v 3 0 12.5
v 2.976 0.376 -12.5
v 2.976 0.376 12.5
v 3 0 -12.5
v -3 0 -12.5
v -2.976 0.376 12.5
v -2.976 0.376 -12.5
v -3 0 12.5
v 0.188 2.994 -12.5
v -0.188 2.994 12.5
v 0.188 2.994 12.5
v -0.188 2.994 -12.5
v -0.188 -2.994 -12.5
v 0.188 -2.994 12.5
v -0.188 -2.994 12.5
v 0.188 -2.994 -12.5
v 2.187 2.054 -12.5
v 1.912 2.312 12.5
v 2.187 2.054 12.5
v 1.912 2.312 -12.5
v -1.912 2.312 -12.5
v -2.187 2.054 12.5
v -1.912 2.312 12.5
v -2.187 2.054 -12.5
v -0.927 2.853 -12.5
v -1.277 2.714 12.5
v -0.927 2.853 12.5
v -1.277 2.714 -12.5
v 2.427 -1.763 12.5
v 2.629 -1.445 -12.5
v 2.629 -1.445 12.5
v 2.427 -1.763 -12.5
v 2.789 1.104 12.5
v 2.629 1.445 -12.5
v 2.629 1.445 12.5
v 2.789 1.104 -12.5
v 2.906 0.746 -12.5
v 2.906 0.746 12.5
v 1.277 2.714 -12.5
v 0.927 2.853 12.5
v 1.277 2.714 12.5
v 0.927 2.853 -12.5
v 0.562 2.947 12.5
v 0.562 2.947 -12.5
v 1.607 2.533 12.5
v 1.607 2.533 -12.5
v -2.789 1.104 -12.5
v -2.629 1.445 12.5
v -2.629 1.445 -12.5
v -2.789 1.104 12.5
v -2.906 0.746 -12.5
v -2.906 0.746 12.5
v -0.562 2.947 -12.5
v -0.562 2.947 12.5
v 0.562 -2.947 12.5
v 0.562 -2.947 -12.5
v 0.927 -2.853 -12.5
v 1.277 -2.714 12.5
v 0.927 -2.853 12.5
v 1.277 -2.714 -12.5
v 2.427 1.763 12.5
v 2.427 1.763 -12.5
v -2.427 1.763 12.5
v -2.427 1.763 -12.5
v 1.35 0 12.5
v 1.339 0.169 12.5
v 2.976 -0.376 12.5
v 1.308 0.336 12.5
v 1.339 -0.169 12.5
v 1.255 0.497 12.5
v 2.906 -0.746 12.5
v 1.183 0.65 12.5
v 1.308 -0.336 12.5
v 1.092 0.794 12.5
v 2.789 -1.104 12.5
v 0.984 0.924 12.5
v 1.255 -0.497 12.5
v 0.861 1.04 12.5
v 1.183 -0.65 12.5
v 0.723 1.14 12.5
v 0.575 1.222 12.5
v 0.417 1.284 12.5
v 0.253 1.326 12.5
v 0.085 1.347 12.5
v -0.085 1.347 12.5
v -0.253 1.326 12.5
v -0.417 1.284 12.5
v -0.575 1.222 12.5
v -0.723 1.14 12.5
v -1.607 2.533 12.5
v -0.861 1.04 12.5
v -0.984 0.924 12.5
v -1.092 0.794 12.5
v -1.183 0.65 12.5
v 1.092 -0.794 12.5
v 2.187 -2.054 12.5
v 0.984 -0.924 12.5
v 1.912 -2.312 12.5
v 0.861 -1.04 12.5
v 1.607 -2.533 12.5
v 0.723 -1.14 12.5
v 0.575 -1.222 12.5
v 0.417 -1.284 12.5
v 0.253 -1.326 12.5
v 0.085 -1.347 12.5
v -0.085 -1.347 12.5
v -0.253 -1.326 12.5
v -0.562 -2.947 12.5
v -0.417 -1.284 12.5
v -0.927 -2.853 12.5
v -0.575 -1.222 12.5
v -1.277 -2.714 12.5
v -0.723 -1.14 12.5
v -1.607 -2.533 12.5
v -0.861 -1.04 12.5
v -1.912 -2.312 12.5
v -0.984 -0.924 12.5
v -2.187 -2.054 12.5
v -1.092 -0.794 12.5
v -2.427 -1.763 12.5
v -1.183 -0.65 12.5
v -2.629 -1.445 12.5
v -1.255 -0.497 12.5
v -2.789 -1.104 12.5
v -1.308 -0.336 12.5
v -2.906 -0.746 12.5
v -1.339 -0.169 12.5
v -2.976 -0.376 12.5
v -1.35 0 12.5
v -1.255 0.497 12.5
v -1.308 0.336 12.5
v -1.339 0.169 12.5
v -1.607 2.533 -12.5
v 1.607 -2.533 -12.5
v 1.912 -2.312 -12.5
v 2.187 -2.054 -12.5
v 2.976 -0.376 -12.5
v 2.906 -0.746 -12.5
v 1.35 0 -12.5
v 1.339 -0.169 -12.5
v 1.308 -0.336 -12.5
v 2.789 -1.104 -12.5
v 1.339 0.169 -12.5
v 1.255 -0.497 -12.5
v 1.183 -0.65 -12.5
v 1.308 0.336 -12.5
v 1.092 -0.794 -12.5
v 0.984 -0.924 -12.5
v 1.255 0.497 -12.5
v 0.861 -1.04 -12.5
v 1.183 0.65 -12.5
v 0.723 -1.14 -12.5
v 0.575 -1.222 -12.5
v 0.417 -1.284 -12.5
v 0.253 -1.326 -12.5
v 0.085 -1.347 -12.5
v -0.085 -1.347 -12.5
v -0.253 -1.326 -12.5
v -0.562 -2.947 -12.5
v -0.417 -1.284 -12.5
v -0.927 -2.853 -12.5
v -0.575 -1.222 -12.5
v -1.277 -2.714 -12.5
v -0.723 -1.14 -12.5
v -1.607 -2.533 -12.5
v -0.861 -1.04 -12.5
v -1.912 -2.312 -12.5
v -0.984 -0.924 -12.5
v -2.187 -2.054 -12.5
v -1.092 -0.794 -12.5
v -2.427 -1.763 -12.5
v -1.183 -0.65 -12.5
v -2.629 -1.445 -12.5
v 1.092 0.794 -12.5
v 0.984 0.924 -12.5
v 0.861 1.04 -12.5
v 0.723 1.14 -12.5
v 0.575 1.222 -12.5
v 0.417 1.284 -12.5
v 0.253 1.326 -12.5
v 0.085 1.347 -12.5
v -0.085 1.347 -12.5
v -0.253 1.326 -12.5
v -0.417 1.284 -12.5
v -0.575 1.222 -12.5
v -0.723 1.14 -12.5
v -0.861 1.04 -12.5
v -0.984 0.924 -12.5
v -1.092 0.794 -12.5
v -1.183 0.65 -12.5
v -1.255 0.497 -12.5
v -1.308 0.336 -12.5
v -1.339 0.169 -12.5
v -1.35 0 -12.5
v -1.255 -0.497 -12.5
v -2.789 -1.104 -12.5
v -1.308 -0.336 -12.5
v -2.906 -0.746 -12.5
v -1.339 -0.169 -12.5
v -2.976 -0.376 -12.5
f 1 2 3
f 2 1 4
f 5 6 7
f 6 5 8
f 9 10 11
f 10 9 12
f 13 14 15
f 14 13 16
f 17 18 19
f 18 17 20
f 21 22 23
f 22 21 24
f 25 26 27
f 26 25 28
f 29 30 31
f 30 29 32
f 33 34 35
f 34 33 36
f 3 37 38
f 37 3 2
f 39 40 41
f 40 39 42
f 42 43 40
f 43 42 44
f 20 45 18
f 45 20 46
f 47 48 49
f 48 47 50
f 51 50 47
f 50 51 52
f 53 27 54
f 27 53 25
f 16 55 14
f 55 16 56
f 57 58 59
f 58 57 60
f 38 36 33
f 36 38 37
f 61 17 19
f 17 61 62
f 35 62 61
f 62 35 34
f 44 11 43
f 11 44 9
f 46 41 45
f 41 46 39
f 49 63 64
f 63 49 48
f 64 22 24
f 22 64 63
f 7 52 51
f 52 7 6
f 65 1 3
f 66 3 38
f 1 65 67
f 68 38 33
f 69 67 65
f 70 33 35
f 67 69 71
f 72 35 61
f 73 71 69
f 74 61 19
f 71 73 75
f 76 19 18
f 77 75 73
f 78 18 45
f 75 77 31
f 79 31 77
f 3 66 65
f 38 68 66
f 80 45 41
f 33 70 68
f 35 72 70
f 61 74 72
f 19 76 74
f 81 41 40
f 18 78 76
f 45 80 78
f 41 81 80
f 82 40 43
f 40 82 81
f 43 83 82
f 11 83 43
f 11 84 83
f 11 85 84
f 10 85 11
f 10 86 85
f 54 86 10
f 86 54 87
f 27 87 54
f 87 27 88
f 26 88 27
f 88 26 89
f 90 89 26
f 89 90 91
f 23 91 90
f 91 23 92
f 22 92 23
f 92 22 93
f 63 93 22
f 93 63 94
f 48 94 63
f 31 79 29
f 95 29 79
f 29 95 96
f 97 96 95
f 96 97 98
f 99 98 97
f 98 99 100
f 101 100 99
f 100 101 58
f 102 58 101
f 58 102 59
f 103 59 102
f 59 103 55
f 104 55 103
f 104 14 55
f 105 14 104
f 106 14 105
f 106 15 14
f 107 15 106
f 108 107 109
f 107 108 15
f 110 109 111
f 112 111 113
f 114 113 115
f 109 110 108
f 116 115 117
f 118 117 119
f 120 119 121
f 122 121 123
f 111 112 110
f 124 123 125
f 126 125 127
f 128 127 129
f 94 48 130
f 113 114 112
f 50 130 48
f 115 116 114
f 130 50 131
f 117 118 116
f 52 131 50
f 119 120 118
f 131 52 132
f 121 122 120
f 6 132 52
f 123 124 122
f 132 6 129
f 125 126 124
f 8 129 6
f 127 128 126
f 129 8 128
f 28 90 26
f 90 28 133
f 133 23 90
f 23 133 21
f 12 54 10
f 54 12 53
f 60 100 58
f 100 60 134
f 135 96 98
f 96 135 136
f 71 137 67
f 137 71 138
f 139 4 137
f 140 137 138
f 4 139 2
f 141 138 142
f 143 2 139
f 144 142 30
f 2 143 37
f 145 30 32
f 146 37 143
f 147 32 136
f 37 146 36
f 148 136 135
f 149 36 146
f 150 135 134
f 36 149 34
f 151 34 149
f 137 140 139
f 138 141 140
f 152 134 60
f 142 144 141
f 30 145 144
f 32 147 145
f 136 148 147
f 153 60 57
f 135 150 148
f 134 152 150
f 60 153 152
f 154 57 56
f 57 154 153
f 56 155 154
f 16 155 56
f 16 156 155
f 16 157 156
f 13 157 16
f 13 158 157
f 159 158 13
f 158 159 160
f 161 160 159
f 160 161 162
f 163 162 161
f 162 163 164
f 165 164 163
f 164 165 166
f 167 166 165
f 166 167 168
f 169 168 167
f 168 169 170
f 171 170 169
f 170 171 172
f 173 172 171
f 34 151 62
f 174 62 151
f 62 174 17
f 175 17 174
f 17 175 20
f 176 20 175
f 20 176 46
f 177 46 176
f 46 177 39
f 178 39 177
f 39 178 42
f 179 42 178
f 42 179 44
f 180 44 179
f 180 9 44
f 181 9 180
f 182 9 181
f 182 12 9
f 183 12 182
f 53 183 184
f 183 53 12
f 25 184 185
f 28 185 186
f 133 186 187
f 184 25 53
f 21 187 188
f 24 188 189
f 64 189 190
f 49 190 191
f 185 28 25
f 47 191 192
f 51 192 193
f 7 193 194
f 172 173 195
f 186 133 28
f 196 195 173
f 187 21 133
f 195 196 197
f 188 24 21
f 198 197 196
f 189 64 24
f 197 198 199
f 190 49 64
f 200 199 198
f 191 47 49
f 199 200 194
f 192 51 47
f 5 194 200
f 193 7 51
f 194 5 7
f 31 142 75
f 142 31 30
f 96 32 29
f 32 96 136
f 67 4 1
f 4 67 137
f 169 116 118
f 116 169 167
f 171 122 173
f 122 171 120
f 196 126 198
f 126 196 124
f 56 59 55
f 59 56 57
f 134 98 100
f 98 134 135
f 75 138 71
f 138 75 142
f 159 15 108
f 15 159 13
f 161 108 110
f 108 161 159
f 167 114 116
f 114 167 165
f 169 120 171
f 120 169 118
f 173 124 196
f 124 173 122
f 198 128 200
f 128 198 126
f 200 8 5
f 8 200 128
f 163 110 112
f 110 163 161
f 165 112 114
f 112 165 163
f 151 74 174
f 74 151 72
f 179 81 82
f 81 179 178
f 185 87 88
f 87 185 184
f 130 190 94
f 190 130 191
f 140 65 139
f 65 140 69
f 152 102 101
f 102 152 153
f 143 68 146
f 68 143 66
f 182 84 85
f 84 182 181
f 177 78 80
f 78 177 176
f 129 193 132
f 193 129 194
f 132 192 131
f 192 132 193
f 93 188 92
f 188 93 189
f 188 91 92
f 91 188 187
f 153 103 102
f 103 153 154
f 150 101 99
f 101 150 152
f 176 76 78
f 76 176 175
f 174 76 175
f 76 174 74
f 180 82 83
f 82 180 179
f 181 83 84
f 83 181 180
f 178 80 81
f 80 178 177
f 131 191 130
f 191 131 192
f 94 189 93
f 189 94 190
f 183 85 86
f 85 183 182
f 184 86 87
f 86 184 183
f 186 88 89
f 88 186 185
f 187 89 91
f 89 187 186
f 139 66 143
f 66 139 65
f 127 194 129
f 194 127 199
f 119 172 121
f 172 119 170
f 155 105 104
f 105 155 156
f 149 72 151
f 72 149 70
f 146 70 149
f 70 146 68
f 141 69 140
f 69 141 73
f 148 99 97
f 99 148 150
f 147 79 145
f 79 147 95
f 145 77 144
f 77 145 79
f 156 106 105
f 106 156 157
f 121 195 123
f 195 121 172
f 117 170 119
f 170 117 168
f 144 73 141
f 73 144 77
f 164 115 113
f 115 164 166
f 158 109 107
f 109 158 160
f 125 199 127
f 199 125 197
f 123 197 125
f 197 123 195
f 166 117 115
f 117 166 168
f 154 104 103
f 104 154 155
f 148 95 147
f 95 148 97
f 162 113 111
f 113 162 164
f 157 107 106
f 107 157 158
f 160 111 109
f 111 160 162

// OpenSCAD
$fn = 50;


difference() {
	union() {
		translate(v = [0, 0, -12.5000000000]) {
			cylinder(h = 25, r = 3.0000000000);
		}
	}
	union() {
		translate(v = [0, 0, -100.0000000000]) {
			cylinder(h = 200, r = 1.3500000000);
		}
	}
}
